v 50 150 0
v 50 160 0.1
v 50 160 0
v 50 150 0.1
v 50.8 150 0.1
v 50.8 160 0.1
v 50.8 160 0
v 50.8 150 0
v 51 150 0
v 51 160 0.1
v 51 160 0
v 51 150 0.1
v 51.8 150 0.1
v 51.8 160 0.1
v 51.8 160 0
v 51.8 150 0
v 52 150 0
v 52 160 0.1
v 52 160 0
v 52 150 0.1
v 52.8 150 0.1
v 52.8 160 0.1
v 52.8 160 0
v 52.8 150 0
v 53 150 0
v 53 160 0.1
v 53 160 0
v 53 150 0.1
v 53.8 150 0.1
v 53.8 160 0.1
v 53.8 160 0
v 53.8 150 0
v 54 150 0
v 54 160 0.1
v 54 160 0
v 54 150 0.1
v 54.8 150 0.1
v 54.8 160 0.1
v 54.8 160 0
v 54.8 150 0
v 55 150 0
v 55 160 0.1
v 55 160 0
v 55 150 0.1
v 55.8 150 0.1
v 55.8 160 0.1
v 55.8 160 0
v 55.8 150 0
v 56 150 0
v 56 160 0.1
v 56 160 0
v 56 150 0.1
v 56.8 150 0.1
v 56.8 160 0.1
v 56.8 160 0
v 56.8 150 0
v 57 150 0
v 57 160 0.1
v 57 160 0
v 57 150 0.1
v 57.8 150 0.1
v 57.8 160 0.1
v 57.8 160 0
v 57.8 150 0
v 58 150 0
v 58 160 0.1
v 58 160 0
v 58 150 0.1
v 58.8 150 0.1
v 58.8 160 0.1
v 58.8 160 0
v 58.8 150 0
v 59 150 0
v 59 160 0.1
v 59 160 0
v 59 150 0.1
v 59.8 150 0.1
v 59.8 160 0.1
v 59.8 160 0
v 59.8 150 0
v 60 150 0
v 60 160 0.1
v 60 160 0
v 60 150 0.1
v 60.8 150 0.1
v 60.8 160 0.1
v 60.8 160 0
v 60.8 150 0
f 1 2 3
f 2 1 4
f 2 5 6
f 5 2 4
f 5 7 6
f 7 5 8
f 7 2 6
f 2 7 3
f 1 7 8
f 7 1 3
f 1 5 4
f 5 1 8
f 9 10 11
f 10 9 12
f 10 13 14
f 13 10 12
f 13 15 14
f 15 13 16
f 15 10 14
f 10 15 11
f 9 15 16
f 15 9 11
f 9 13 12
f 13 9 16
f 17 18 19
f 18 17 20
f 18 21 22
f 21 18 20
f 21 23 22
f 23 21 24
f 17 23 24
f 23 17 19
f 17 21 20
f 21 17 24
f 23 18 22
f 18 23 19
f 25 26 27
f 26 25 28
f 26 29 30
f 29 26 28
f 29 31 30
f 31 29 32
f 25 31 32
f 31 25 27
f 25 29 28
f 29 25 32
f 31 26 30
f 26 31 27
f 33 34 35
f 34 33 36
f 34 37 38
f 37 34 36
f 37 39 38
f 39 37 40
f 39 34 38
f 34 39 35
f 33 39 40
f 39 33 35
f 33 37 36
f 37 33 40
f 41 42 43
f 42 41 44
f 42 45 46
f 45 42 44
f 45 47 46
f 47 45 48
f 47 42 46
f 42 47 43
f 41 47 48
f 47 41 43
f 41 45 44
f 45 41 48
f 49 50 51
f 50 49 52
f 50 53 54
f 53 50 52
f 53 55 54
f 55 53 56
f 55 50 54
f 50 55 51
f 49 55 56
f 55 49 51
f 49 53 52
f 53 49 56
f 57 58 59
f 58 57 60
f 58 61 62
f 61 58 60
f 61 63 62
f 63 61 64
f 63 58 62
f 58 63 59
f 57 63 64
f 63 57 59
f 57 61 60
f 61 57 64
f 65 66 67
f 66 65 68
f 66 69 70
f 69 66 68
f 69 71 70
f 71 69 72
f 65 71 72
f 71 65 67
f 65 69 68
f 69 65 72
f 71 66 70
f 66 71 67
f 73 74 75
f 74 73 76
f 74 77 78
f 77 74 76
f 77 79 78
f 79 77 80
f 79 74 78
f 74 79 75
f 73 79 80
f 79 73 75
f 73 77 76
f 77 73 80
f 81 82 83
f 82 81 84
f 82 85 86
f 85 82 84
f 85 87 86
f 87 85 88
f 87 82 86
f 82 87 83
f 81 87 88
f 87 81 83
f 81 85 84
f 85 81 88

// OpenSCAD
translate([10+40,10+140,0])
        for (i = [0 : 10]){
            translate([i,0,0])
                cube(size = [0.8,10,0.1]);
    }
